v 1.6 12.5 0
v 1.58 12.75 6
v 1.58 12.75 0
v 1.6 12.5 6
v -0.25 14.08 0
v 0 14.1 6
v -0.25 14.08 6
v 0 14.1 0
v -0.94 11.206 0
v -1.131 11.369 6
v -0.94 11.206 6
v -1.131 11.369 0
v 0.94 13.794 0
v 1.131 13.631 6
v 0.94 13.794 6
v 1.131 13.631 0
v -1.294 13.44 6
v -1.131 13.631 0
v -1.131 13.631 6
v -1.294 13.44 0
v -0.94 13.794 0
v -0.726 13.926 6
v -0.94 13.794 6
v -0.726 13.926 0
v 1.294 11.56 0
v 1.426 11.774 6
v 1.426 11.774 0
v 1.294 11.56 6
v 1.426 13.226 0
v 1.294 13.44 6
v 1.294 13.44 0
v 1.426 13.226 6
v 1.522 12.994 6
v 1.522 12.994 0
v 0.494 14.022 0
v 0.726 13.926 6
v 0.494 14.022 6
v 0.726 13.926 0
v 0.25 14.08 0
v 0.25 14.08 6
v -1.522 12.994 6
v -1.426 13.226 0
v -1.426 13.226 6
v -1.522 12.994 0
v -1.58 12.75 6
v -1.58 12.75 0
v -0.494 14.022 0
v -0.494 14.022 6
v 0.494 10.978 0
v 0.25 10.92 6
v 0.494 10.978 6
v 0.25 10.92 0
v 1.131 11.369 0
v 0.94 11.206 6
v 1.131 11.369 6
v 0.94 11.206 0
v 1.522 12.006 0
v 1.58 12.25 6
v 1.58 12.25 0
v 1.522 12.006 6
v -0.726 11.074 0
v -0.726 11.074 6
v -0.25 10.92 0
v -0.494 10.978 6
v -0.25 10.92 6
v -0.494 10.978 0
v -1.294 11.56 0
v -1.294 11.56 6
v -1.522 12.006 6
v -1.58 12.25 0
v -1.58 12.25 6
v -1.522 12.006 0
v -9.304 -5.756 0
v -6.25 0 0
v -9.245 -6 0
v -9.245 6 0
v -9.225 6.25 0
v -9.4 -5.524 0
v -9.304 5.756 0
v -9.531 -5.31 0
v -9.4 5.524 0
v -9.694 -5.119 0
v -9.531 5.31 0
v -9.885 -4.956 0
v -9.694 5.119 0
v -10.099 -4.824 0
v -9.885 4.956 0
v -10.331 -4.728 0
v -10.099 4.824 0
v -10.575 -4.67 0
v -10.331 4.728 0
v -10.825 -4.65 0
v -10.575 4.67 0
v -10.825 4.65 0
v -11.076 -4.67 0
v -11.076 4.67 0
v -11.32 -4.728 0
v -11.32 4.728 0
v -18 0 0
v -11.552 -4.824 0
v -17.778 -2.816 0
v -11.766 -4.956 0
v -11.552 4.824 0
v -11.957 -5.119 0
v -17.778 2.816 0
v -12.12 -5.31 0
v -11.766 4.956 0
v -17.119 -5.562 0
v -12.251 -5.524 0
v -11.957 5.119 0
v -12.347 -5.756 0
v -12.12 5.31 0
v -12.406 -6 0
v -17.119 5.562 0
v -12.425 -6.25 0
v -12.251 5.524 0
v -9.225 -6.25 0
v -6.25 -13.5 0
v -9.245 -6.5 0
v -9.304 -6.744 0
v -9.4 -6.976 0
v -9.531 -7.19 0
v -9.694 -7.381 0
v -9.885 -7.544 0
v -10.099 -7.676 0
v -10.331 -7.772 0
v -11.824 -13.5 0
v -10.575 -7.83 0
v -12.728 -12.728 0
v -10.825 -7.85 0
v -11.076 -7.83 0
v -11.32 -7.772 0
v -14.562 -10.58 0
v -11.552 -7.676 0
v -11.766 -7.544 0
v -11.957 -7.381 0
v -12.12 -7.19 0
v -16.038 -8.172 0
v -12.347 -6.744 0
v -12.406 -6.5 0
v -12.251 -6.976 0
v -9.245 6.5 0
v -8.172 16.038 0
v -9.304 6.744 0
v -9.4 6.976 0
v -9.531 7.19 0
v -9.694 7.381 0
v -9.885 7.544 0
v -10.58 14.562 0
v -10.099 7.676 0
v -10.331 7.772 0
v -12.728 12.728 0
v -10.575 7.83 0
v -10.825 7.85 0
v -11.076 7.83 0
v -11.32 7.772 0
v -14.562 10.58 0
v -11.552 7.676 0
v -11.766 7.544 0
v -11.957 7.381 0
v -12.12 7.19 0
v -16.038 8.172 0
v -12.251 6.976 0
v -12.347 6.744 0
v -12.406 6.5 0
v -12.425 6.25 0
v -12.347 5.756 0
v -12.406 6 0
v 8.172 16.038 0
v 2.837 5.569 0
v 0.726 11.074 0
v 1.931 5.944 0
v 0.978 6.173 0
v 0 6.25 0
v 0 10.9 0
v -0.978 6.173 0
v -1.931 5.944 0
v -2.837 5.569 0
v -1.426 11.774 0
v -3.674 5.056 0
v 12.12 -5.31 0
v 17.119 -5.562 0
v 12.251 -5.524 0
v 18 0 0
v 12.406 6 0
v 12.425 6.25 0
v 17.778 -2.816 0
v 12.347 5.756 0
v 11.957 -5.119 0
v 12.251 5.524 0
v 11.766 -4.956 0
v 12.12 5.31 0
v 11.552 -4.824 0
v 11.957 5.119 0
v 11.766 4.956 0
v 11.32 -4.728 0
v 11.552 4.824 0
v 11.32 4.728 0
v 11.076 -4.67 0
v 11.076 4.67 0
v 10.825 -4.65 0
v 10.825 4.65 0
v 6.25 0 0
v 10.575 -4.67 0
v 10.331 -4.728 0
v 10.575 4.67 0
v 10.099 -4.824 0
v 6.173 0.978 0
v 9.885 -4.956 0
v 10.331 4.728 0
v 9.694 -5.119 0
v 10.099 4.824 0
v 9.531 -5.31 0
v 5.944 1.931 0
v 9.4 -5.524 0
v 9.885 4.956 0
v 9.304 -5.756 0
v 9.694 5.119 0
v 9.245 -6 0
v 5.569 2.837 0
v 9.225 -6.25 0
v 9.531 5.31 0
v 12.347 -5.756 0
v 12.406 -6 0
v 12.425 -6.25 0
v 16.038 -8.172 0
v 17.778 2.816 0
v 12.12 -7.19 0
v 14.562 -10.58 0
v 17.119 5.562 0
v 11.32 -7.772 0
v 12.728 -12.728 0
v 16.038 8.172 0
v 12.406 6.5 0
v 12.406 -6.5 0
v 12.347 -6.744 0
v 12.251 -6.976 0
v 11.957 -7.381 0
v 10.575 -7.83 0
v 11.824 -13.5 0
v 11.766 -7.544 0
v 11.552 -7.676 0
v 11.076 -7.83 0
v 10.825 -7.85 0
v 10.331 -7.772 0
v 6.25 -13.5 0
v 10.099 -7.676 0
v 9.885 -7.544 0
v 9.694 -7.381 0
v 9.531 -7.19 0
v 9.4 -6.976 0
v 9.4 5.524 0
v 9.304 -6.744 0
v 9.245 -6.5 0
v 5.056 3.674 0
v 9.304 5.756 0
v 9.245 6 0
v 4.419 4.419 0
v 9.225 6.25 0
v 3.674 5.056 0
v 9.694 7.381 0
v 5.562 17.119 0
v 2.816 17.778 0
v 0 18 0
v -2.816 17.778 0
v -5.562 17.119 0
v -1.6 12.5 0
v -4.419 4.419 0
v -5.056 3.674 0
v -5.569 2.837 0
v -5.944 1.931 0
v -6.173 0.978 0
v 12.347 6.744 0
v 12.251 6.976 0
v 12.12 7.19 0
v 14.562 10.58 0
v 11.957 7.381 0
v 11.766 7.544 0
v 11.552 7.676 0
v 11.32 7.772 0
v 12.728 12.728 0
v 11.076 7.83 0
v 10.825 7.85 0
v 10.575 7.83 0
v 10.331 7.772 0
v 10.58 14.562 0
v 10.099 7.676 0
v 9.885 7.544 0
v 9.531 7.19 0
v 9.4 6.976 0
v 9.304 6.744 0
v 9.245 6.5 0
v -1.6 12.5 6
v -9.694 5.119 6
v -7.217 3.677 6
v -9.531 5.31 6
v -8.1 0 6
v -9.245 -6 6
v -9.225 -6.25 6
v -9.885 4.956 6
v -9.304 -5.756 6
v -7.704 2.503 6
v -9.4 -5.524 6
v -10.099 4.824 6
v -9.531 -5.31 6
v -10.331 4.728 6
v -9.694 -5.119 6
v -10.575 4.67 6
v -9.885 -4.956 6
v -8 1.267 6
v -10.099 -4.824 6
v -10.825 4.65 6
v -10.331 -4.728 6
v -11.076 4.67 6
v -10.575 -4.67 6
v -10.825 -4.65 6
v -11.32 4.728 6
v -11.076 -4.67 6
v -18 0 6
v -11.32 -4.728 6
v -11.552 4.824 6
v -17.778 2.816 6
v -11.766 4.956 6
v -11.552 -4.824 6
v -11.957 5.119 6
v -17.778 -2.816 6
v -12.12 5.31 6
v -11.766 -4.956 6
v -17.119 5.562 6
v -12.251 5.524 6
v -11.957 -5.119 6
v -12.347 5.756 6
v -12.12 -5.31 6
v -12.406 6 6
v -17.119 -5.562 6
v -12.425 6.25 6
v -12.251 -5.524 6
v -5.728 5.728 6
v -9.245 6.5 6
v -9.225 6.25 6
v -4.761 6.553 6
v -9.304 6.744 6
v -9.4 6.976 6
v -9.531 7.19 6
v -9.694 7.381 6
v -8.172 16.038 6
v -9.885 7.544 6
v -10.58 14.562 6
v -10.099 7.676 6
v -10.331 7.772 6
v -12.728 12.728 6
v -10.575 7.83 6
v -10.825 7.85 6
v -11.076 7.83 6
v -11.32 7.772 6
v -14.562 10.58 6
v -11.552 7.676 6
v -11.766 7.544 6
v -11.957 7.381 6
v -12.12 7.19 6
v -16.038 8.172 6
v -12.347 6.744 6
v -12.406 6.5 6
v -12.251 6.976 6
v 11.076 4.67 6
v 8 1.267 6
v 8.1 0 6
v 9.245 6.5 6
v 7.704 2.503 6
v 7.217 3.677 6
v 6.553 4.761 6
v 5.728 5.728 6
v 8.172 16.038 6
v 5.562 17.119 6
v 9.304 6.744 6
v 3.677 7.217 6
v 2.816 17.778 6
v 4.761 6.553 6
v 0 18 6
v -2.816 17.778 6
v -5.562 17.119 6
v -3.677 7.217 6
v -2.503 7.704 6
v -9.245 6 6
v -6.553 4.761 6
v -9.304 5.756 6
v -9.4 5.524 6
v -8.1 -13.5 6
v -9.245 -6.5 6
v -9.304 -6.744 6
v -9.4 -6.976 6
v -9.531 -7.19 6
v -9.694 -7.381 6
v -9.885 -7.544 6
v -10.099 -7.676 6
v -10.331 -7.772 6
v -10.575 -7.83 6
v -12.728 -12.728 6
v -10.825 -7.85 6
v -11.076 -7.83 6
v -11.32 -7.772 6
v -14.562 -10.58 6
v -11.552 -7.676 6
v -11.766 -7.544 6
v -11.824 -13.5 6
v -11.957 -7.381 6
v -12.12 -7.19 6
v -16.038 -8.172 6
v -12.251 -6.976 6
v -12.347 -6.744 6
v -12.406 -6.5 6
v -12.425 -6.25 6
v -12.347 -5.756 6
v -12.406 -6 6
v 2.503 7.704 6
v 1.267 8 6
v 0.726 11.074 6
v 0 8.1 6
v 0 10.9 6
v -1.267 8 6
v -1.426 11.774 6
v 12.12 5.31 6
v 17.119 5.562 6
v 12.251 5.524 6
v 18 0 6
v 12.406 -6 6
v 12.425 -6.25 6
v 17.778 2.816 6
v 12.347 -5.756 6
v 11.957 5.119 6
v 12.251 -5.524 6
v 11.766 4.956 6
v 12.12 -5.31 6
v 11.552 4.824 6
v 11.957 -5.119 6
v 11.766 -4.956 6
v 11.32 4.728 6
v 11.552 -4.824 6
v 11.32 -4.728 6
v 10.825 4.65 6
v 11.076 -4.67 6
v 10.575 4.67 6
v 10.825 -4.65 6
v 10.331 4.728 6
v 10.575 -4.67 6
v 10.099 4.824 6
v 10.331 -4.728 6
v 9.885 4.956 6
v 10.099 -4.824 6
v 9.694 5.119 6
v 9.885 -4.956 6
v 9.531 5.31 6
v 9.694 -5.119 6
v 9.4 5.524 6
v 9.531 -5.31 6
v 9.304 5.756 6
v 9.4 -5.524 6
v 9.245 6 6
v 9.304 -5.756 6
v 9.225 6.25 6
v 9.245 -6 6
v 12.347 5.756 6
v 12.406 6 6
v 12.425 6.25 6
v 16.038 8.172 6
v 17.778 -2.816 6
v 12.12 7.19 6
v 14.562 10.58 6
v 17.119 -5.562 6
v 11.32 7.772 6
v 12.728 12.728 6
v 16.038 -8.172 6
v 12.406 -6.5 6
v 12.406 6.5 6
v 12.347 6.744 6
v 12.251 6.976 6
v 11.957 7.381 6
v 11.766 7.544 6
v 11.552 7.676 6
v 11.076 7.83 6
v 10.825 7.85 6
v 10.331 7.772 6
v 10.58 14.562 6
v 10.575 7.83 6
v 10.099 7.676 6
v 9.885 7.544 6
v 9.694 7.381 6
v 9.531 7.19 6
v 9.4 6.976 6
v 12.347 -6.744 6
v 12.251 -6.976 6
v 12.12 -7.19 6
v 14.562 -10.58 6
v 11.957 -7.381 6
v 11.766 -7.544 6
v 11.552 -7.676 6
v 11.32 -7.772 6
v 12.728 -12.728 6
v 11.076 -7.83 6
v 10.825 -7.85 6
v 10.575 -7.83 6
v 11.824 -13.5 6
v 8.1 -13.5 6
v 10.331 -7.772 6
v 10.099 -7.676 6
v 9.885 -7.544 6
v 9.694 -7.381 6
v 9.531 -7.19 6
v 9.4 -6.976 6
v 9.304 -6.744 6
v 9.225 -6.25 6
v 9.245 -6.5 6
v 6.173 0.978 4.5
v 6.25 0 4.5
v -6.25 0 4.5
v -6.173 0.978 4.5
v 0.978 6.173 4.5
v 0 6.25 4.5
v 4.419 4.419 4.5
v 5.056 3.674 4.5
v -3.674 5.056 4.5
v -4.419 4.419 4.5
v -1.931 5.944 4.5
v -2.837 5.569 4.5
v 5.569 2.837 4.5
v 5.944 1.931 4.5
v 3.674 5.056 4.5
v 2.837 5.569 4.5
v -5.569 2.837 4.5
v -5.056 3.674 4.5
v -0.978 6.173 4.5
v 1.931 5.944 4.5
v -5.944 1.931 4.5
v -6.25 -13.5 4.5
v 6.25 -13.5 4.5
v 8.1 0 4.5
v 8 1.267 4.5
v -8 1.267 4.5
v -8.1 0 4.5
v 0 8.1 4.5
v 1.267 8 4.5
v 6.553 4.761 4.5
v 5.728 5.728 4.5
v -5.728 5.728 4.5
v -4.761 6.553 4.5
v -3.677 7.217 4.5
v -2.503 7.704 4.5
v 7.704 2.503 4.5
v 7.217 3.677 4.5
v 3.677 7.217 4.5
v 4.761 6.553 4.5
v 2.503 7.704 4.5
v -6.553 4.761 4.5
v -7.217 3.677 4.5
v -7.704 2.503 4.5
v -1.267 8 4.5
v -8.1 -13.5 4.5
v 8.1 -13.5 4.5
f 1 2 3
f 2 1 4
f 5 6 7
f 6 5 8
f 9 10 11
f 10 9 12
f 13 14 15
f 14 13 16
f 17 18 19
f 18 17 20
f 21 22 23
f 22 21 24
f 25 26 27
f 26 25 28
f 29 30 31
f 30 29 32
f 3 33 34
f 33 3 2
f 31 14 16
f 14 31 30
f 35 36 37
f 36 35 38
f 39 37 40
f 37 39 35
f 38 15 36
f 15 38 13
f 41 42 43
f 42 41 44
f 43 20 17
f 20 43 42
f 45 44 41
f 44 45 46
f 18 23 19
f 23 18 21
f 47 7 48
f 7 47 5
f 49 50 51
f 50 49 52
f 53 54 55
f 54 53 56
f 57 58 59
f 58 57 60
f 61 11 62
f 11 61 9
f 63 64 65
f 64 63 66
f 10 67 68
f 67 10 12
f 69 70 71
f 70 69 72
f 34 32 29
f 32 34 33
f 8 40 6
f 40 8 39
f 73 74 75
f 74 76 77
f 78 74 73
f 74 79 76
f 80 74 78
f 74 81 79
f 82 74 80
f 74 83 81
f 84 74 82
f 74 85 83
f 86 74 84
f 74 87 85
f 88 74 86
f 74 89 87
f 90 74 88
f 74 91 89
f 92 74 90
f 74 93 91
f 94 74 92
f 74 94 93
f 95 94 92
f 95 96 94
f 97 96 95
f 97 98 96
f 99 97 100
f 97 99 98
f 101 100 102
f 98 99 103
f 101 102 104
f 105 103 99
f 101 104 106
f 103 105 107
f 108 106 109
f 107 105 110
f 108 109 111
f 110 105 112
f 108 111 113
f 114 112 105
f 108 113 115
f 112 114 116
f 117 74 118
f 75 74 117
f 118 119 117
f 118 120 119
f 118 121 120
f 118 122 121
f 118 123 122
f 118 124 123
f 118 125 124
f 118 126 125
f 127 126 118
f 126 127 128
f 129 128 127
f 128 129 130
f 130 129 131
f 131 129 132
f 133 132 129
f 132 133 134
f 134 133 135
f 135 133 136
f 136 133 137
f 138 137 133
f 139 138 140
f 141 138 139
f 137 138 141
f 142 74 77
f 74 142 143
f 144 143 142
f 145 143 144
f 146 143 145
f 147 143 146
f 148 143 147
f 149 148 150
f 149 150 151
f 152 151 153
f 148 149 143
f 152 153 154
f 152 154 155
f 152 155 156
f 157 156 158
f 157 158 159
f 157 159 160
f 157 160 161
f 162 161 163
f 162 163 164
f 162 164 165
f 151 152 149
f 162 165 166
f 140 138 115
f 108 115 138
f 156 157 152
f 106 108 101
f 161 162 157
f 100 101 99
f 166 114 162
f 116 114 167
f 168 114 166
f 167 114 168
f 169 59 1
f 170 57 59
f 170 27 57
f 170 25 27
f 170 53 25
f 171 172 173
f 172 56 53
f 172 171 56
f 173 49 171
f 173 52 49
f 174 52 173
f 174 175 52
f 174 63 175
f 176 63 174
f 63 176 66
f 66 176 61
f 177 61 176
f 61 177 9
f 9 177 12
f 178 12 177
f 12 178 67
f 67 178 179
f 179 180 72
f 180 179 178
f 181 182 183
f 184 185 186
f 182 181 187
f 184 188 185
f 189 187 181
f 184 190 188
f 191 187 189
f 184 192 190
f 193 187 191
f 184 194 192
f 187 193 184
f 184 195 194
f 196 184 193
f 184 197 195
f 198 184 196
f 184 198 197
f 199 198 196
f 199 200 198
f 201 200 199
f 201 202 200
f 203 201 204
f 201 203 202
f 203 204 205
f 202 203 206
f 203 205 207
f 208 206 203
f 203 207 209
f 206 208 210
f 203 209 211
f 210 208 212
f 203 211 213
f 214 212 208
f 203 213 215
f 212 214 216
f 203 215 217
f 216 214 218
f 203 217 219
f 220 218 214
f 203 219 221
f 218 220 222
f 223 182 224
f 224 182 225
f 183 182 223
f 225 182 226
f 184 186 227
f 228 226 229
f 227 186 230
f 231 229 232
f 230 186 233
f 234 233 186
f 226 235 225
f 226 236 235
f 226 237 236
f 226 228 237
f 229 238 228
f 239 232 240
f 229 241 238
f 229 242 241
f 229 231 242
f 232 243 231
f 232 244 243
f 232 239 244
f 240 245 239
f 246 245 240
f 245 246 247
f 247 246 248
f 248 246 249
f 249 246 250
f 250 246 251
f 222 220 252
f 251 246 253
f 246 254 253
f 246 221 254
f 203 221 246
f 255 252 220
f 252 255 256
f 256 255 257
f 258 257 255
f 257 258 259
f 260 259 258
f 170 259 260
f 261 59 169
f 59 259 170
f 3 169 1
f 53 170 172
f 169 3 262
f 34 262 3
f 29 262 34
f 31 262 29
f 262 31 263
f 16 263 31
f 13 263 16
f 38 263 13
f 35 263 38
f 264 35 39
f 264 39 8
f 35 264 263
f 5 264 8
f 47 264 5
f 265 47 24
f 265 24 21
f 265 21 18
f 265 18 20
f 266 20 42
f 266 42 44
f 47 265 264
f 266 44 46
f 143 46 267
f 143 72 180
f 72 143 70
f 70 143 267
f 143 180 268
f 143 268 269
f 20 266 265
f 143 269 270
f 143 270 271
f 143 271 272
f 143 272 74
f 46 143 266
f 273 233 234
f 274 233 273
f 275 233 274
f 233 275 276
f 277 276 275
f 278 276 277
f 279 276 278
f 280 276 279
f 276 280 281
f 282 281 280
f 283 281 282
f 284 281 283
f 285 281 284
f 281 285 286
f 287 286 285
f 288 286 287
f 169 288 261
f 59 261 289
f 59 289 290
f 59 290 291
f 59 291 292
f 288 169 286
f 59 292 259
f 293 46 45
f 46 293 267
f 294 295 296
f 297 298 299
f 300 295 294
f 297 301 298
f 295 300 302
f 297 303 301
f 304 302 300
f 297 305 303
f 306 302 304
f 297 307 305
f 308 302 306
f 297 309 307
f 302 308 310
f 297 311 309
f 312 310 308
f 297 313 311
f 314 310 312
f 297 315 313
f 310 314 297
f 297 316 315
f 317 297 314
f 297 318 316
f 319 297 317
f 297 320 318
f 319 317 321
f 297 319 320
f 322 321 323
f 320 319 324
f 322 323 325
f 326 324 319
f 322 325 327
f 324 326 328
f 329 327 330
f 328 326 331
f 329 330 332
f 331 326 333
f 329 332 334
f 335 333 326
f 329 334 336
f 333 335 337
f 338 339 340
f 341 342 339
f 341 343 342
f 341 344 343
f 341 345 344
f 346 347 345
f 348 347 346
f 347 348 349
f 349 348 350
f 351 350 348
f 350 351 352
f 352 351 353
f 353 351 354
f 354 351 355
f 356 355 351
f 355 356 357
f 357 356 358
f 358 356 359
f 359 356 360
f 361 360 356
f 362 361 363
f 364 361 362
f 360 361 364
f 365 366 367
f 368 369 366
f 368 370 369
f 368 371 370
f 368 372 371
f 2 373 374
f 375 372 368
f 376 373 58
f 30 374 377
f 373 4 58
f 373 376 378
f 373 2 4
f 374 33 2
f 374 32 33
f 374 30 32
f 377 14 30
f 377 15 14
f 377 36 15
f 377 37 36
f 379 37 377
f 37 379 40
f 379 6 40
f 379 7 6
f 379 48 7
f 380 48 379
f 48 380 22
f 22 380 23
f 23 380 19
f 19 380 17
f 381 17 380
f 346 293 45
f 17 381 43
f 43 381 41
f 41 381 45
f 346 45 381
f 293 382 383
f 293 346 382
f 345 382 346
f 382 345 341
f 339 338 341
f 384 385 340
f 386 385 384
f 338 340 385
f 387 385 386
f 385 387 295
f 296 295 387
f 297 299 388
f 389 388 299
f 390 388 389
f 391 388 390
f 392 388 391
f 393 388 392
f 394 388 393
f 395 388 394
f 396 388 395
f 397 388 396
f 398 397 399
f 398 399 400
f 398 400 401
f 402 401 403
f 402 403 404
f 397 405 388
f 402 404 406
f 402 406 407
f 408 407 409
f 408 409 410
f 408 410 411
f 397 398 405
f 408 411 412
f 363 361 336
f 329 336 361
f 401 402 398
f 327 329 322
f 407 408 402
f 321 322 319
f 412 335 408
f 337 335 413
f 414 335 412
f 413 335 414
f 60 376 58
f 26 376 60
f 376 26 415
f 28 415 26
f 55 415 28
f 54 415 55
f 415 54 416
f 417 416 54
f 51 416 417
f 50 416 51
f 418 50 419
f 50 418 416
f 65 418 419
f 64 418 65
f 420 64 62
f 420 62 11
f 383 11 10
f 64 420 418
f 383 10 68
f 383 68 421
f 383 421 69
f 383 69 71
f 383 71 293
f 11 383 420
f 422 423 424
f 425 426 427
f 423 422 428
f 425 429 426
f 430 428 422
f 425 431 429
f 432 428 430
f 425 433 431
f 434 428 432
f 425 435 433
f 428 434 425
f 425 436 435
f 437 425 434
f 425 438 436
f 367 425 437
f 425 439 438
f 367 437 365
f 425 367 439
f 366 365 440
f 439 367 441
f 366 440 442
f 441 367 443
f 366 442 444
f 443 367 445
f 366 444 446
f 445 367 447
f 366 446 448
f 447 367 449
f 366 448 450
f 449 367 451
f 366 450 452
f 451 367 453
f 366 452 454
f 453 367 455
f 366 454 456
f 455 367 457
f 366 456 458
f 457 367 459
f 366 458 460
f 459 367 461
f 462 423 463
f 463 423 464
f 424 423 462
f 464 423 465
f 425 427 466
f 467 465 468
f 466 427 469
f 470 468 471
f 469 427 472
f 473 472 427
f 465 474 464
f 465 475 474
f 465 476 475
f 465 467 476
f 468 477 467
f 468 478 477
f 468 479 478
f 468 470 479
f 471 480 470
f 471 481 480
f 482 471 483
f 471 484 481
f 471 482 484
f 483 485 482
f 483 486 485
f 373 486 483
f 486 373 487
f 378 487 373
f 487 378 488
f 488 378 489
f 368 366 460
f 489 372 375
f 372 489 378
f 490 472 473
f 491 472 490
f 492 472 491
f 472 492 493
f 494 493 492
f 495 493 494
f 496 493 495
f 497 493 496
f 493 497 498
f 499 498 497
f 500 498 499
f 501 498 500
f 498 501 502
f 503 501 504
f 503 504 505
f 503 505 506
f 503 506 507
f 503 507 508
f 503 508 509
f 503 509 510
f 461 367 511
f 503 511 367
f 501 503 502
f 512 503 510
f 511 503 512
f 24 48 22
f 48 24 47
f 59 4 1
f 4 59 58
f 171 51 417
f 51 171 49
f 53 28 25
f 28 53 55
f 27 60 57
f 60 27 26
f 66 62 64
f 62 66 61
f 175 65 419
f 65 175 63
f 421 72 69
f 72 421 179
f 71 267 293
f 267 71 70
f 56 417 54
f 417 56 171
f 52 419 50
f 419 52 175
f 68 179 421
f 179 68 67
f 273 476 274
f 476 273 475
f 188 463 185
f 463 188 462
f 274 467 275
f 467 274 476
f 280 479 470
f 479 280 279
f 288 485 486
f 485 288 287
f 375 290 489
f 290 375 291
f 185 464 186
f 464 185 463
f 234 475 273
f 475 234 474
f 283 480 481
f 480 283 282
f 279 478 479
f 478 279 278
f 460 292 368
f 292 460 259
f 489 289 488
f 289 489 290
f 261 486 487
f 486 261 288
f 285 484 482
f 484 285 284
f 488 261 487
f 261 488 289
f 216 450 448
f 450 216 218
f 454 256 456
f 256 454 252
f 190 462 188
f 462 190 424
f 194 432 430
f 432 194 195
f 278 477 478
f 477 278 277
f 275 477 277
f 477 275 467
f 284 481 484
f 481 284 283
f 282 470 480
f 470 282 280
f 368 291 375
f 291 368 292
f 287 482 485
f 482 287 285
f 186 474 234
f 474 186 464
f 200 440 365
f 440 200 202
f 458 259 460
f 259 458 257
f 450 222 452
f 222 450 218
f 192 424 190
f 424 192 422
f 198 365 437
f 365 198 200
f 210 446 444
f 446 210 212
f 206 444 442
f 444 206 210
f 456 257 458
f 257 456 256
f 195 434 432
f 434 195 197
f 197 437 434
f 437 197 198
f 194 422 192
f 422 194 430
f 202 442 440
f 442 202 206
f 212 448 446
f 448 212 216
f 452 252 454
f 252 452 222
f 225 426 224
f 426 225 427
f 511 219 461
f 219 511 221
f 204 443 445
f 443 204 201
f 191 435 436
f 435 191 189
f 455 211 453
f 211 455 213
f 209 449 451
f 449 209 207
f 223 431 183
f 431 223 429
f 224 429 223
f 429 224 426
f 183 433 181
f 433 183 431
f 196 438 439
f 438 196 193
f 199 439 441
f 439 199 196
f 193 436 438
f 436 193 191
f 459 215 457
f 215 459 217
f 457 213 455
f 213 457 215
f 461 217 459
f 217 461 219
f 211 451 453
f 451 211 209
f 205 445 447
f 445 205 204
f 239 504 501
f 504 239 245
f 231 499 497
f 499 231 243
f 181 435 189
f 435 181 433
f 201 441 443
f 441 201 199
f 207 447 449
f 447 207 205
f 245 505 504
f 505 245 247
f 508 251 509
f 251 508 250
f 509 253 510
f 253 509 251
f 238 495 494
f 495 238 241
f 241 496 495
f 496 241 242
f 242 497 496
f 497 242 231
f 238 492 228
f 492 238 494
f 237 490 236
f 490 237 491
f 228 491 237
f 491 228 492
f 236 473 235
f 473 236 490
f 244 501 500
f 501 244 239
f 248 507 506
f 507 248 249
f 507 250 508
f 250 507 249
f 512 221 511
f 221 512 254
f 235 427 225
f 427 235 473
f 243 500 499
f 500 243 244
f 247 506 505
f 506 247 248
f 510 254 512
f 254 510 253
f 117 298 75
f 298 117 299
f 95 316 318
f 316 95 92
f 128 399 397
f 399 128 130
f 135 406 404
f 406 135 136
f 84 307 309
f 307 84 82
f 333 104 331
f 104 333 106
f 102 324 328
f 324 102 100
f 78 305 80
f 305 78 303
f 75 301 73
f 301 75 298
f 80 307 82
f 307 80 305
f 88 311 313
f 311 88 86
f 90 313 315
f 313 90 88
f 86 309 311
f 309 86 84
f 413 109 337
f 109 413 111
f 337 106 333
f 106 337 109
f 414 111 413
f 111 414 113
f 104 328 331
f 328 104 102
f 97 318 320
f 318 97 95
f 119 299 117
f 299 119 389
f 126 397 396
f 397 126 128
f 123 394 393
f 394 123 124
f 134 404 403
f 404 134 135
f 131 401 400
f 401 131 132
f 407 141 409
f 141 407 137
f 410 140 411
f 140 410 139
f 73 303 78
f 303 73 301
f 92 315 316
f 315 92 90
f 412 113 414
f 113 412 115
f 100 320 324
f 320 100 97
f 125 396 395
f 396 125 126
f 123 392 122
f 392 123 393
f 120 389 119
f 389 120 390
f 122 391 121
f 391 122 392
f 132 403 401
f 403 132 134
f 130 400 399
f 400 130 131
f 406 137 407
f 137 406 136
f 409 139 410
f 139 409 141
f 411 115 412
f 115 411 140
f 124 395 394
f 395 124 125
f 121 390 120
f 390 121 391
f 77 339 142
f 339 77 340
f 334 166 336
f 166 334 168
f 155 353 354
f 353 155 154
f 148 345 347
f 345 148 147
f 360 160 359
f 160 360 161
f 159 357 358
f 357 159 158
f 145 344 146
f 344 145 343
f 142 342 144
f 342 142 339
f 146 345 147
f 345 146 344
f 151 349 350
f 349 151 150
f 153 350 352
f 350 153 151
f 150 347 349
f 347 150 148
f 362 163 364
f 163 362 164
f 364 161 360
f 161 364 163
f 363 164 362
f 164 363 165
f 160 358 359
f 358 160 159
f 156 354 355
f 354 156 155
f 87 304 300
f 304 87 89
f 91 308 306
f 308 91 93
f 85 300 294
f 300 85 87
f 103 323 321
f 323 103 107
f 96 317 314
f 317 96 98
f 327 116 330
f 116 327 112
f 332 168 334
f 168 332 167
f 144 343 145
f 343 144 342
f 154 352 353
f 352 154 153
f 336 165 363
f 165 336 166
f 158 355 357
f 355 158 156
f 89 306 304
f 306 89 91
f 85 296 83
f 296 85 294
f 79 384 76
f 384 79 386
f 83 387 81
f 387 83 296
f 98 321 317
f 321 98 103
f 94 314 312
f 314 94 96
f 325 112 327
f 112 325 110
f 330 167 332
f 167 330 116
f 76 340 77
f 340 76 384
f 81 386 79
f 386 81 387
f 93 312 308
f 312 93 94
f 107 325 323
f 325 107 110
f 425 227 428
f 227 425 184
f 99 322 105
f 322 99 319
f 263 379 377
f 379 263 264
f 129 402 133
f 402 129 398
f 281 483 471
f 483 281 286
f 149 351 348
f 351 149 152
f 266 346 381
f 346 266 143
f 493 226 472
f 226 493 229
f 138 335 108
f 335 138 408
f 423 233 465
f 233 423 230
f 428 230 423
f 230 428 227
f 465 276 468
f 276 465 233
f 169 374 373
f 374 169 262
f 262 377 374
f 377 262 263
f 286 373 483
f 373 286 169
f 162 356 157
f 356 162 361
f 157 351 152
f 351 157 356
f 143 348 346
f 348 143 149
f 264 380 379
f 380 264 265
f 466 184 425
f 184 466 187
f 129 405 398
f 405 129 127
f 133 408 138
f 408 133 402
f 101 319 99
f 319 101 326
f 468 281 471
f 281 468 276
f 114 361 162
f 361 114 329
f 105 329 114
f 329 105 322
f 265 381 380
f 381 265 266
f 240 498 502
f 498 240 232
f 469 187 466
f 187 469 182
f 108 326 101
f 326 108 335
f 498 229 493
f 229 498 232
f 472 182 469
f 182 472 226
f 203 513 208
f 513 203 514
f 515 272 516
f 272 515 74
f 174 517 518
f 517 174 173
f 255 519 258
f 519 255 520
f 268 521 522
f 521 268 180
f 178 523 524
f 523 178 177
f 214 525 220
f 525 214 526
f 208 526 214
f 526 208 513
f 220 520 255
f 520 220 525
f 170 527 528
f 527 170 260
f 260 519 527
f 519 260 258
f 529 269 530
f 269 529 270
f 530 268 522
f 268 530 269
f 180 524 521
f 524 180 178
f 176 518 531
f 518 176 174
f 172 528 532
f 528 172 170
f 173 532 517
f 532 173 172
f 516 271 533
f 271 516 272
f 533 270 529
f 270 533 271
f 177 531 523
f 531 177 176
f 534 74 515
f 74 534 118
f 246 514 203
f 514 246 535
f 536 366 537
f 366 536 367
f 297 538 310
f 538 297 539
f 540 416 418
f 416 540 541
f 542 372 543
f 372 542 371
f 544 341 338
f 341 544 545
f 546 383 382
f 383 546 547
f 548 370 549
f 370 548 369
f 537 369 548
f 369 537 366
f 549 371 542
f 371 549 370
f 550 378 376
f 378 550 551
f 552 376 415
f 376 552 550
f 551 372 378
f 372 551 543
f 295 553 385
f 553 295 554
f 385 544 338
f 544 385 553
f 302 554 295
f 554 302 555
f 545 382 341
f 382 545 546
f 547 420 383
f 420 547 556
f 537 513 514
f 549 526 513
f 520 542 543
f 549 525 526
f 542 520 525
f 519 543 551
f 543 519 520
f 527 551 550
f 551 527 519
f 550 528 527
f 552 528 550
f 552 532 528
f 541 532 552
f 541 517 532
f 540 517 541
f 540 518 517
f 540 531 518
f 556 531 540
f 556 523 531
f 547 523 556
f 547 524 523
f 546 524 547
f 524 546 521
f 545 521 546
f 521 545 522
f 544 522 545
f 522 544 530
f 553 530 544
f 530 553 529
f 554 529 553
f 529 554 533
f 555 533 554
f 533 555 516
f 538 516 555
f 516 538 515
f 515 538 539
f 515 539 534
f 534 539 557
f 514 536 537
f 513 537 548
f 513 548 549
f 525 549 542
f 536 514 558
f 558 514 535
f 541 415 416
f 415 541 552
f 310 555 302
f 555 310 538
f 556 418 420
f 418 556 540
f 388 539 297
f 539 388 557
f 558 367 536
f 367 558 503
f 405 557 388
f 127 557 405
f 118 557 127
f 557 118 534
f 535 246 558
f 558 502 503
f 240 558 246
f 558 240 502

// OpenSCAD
// Overall mount dimensions
mount_radius = 18;
mount_thickness = 6;

// Through holes
hole_radius = 12.5;
m3_wide_radius=1.6;

// Slot and lip for installation
slot_radius = 6.25;
lip_radius = 8.1;
lip_thickness = 1.5;

$fn = 40;

module groove_mount(){
    translate([0, 0, mount_thickness/2])
    difference() {
      cylinder(r=mount_radius, h=mount_thickness, center=true);
    
      // Thru holes
      for (hole_angle = [0:60:360]) {
        translate([sin(hole_angle)*hole_radius,cos(hole_angle)*hole_radius,0]) cylinder(r=m3_wide_radius, h=mount_thickness, center=true);
      }
    
      // Thru slot
      cylinder(r=slot_radius, h=mount_thickness, center=true);
      translate([0, -mount_radius/2, 0]) cube([2*slot_radius, mount_radius, mount_thickness], center=true);
    
      // Lip 
      translate([0, 0, (mount_thickness-lip_thickness)/2]) cylinder(r=lip_radius, h=lip_thickness, center=true);
      translate([0, -mount_radius/2, (mount_thickness-lip_thickness)/2]) cube([2*lip_radius, mount_radius, lip_thickness], center=true);
    
      // Cut off the sharp edges at the front
      translate([0, -7/4*mount_radius, 0]) cube([2*mount_radius, 2*mount_radius, mount_thickness], center=true);
    };
}

groove_mount();
